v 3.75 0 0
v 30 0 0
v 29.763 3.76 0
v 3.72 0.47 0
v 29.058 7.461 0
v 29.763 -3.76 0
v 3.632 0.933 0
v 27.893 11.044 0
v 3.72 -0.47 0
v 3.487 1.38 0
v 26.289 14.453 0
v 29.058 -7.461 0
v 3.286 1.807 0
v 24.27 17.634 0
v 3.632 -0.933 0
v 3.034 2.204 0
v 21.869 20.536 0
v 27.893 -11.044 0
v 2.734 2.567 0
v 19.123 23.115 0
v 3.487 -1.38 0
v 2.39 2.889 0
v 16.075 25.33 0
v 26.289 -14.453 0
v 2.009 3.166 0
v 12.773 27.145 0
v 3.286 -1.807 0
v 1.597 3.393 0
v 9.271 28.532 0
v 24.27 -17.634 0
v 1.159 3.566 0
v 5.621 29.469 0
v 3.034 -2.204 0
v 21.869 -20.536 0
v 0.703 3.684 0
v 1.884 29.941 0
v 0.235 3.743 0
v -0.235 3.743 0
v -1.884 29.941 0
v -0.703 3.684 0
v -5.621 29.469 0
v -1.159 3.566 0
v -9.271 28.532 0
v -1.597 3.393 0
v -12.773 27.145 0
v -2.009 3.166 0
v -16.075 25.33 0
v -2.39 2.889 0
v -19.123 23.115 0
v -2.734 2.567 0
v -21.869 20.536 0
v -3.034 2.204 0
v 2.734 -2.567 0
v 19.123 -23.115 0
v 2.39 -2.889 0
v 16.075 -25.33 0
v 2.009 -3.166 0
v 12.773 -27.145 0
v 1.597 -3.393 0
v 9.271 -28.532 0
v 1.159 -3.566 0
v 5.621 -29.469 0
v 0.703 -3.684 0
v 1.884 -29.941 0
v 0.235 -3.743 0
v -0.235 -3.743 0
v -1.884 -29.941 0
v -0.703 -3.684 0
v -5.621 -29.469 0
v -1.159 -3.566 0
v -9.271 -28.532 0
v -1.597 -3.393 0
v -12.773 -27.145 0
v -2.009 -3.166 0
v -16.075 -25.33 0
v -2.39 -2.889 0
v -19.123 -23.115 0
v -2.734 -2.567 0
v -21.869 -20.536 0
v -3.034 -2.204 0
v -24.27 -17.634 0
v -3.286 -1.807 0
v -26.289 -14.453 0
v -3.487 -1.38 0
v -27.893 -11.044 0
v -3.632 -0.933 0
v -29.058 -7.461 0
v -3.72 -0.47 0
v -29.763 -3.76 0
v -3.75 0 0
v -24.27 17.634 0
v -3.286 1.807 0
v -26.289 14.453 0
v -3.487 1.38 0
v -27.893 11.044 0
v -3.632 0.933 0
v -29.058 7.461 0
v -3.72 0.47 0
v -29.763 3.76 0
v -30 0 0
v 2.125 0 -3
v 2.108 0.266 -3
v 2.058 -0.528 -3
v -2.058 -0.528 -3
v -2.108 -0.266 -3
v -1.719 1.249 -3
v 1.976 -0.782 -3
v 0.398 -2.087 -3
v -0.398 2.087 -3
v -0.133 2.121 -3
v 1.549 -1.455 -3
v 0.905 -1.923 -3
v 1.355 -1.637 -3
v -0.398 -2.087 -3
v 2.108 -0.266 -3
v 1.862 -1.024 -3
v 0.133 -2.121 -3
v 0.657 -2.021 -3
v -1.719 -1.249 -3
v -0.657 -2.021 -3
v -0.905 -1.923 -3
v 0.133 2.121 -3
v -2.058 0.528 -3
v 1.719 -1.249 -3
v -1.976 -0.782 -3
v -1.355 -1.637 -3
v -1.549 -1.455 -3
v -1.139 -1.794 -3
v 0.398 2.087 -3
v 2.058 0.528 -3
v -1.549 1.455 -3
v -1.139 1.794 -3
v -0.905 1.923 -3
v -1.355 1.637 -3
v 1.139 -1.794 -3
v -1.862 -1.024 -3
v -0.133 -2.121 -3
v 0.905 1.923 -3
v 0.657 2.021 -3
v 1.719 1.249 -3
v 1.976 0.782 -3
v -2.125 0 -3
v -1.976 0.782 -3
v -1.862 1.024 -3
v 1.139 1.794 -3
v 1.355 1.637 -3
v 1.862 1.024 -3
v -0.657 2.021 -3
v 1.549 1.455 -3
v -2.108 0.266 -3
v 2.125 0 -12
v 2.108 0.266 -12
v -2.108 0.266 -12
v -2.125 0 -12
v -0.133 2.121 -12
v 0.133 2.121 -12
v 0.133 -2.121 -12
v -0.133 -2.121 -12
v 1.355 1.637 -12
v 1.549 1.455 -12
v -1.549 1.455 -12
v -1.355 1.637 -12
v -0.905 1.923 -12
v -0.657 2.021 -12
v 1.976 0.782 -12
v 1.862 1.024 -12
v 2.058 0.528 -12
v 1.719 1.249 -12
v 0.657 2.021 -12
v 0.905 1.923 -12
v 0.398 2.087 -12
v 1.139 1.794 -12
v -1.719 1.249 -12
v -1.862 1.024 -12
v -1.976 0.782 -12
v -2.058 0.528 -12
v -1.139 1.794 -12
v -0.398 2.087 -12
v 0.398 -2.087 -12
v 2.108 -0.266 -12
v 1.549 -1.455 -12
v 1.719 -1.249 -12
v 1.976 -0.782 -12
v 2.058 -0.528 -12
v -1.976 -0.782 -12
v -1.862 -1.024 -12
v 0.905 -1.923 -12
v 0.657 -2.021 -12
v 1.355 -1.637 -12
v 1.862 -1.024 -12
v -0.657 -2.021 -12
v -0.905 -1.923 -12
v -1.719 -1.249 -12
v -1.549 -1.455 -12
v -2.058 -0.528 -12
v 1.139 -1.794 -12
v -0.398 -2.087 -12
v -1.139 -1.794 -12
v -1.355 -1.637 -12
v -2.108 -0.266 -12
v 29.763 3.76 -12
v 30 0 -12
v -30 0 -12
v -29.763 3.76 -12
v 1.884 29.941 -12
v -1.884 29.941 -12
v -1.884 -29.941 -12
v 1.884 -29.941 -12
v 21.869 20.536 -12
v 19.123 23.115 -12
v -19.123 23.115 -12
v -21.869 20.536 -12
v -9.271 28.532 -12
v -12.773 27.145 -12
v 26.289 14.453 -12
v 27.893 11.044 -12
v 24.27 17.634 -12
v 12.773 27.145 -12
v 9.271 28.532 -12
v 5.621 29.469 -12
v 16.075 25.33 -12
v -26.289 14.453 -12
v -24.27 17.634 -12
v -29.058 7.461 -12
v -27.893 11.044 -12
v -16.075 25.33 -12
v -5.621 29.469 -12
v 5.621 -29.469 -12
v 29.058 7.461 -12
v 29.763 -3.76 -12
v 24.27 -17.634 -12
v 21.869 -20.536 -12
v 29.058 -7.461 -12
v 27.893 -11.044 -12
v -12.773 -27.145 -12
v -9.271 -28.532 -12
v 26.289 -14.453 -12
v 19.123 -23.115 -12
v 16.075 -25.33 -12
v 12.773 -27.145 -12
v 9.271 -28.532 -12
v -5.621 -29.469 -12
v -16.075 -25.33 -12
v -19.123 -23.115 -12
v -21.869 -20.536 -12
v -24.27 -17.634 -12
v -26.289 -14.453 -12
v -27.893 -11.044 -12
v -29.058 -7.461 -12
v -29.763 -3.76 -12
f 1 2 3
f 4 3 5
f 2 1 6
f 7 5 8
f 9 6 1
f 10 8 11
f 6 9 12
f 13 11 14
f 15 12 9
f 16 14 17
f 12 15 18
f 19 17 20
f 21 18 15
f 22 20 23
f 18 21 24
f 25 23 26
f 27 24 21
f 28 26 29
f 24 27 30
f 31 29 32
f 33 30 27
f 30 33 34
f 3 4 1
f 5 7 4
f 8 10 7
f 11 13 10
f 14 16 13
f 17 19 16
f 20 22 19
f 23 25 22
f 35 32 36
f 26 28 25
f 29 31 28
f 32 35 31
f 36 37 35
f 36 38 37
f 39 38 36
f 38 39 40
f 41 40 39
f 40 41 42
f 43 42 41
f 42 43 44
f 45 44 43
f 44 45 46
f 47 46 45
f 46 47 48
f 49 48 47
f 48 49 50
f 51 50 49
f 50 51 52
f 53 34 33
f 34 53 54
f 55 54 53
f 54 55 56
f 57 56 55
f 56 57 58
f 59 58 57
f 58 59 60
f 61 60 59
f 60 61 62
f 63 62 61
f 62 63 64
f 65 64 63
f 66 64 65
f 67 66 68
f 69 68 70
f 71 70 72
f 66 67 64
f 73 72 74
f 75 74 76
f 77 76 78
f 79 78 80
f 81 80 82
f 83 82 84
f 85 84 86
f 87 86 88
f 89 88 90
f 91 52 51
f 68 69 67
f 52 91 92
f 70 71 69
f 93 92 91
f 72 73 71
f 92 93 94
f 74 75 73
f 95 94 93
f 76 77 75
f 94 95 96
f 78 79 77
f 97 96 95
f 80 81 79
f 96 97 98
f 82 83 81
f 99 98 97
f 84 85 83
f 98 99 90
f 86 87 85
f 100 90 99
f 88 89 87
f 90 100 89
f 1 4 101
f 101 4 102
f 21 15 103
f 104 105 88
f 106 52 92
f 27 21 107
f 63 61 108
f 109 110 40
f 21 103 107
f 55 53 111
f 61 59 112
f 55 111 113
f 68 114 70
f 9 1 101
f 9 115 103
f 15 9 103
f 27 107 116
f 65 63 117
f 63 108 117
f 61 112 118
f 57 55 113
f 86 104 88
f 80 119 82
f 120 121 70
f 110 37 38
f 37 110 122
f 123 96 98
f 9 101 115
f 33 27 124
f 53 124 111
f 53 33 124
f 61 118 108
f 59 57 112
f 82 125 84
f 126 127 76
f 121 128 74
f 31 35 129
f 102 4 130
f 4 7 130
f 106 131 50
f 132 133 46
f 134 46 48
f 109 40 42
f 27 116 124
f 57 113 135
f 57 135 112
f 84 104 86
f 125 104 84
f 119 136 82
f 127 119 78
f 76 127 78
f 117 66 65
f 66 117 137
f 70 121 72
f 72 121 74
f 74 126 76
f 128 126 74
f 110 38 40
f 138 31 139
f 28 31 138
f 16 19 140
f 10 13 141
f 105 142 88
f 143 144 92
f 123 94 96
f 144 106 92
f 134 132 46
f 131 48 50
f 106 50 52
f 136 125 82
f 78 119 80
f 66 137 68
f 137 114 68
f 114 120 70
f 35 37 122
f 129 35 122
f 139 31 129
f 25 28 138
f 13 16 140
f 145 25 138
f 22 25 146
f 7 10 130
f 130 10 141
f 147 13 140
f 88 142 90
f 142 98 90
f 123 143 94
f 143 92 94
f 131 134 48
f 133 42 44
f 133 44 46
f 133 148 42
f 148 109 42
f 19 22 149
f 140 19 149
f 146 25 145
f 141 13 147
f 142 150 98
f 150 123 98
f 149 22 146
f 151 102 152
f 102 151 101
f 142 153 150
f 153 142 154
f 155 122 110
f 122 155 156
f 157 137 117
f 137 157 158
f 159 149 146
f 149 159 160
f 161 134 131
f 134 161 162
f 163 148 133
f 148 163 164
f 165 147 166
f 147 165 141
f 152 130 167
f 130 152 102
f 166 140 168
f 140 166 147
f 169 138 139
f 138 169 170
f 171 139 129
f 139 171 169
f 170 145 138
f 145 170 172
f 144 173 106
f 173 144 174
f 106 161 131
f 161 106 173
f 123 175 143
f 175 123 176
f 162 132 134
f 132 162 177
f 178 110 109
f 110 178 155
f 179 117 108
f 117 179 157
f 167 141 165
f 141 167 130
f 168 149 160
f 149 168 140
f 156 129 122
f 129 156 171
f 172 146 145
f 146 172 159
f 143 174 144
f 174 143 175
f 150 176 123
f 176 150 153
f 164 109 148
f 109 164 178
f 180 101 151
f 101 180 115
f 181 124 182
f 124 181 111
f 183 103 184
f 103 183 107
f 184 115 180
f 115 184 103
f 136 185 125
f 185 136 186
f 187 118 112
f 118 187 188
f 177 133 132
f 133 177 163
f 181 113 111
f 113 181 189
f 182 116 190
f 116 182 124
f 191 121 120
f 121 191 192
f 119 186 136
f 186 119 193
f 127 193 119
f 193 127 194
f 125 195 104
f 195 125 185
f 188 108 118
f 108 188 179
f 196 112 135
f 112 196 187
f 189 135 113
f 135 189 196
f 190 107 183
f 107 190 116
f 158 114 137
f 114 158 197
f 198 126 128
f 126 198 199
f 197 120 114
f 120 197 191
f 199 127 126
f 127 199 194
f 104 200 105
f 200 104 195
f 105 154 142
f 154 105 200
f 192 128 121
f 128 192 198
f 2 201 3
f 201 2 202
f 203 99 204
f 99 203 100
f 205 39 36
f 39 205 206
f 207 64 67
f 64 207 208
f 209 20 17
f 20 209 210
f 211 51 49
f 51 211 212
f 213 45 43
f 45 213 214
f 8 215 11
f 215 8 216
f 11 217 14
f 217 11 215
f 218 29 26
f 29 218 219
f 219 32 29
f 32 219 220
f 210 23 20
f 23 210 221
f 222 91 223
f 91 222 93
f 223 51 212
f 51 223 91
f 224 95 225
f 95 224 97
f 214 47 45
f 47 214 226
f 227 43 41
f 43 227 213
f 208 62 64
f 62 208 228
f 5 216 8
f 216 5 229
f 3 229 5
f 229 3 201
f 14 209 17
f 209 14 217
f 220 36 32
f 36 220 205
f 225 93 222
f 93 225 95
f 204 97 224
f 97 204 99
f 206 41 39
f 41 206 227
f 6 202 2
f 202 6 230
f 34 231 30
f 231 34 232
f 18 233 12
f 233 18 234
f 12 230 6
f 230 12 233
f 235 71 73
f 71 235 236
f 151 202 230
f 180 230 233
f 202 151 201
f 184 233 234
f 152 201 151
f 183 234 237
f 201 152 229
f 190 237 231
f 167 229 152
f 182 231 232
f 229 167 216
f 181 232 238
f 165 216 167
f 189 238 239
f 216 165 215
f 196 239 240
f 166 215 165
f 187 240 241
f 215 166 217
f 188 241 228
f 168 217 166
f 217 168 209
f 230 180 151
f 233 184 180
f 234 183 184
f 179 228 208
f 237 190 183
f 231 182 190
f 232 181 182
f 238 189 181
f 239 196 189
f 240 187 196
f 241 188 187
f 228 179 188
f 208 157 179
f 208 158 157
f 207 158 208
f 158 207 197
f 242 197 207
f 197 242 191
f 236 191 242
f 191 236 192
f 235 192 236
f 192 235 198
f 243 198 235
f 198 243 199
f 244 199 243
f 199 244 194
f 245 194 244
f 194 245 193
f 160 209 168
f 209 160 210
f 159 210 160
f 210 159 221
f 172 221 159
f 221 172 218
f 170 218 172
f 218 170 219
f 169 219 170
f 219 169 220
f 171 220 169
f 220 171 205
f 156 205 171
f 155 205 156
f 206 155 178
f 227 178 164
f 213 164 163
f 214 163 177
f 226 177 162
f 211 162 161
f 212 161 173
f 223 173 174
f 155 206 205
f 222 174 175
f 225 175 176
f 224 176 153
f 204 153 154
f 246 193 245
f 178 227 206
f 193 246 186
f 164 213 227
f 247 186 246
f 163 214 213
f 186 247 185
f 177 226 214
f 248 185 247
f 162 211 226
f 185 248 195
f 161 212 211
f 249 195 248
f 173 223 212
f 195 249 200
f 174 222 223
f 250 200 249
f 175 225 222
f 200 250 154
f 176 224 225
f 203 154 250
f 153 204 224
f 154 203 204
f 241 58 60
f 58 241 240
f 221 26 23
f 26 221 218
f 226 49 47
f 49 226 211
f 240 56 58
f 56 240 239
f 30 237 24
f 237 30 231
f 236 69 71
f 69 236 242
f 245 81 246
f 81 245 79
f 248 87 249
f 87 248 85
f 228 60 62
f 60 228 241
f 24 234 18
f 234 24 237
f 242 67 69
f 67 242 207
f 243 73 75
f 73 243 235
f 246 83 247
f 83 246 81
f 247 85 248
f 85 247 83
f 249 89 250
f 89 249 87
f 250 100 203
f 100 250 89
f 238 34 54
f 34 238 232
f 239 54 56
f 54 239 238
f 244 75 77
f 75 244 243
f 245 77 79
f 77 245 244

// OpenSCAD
$fn = 50;


difference() {
	union() {
		translate(v = [0, 0, -12.0000000000]) {
			cylinder(h = 12, r = 30.0000000000);
		}
	}
	union() {
		translate(v = [0, 0, 0]) {
			rotate(a = [0, 0, 0]) {
				difference() {
					union() {
						translate(v = [0, 0, -15.0000000000]) {
							cylinder(h = 15, r = 2.0000000000);
						}
						translate(v = [0, 0, -3]) {
							cylinder(h = 3, r1 = 2.1250000000, r2 = 3.7500000000);
						}
						translate(v = [0, 0, -15.0000000000]) {
							cylinder(h = 15, r = 2.1250000000);
						}
						translate(v = [0, 0, -15.0000000000]) {
							cylinder(h = 15, r = 2.0000000000);
						}
					}
					union();
				}
			}
		}
	}
}
